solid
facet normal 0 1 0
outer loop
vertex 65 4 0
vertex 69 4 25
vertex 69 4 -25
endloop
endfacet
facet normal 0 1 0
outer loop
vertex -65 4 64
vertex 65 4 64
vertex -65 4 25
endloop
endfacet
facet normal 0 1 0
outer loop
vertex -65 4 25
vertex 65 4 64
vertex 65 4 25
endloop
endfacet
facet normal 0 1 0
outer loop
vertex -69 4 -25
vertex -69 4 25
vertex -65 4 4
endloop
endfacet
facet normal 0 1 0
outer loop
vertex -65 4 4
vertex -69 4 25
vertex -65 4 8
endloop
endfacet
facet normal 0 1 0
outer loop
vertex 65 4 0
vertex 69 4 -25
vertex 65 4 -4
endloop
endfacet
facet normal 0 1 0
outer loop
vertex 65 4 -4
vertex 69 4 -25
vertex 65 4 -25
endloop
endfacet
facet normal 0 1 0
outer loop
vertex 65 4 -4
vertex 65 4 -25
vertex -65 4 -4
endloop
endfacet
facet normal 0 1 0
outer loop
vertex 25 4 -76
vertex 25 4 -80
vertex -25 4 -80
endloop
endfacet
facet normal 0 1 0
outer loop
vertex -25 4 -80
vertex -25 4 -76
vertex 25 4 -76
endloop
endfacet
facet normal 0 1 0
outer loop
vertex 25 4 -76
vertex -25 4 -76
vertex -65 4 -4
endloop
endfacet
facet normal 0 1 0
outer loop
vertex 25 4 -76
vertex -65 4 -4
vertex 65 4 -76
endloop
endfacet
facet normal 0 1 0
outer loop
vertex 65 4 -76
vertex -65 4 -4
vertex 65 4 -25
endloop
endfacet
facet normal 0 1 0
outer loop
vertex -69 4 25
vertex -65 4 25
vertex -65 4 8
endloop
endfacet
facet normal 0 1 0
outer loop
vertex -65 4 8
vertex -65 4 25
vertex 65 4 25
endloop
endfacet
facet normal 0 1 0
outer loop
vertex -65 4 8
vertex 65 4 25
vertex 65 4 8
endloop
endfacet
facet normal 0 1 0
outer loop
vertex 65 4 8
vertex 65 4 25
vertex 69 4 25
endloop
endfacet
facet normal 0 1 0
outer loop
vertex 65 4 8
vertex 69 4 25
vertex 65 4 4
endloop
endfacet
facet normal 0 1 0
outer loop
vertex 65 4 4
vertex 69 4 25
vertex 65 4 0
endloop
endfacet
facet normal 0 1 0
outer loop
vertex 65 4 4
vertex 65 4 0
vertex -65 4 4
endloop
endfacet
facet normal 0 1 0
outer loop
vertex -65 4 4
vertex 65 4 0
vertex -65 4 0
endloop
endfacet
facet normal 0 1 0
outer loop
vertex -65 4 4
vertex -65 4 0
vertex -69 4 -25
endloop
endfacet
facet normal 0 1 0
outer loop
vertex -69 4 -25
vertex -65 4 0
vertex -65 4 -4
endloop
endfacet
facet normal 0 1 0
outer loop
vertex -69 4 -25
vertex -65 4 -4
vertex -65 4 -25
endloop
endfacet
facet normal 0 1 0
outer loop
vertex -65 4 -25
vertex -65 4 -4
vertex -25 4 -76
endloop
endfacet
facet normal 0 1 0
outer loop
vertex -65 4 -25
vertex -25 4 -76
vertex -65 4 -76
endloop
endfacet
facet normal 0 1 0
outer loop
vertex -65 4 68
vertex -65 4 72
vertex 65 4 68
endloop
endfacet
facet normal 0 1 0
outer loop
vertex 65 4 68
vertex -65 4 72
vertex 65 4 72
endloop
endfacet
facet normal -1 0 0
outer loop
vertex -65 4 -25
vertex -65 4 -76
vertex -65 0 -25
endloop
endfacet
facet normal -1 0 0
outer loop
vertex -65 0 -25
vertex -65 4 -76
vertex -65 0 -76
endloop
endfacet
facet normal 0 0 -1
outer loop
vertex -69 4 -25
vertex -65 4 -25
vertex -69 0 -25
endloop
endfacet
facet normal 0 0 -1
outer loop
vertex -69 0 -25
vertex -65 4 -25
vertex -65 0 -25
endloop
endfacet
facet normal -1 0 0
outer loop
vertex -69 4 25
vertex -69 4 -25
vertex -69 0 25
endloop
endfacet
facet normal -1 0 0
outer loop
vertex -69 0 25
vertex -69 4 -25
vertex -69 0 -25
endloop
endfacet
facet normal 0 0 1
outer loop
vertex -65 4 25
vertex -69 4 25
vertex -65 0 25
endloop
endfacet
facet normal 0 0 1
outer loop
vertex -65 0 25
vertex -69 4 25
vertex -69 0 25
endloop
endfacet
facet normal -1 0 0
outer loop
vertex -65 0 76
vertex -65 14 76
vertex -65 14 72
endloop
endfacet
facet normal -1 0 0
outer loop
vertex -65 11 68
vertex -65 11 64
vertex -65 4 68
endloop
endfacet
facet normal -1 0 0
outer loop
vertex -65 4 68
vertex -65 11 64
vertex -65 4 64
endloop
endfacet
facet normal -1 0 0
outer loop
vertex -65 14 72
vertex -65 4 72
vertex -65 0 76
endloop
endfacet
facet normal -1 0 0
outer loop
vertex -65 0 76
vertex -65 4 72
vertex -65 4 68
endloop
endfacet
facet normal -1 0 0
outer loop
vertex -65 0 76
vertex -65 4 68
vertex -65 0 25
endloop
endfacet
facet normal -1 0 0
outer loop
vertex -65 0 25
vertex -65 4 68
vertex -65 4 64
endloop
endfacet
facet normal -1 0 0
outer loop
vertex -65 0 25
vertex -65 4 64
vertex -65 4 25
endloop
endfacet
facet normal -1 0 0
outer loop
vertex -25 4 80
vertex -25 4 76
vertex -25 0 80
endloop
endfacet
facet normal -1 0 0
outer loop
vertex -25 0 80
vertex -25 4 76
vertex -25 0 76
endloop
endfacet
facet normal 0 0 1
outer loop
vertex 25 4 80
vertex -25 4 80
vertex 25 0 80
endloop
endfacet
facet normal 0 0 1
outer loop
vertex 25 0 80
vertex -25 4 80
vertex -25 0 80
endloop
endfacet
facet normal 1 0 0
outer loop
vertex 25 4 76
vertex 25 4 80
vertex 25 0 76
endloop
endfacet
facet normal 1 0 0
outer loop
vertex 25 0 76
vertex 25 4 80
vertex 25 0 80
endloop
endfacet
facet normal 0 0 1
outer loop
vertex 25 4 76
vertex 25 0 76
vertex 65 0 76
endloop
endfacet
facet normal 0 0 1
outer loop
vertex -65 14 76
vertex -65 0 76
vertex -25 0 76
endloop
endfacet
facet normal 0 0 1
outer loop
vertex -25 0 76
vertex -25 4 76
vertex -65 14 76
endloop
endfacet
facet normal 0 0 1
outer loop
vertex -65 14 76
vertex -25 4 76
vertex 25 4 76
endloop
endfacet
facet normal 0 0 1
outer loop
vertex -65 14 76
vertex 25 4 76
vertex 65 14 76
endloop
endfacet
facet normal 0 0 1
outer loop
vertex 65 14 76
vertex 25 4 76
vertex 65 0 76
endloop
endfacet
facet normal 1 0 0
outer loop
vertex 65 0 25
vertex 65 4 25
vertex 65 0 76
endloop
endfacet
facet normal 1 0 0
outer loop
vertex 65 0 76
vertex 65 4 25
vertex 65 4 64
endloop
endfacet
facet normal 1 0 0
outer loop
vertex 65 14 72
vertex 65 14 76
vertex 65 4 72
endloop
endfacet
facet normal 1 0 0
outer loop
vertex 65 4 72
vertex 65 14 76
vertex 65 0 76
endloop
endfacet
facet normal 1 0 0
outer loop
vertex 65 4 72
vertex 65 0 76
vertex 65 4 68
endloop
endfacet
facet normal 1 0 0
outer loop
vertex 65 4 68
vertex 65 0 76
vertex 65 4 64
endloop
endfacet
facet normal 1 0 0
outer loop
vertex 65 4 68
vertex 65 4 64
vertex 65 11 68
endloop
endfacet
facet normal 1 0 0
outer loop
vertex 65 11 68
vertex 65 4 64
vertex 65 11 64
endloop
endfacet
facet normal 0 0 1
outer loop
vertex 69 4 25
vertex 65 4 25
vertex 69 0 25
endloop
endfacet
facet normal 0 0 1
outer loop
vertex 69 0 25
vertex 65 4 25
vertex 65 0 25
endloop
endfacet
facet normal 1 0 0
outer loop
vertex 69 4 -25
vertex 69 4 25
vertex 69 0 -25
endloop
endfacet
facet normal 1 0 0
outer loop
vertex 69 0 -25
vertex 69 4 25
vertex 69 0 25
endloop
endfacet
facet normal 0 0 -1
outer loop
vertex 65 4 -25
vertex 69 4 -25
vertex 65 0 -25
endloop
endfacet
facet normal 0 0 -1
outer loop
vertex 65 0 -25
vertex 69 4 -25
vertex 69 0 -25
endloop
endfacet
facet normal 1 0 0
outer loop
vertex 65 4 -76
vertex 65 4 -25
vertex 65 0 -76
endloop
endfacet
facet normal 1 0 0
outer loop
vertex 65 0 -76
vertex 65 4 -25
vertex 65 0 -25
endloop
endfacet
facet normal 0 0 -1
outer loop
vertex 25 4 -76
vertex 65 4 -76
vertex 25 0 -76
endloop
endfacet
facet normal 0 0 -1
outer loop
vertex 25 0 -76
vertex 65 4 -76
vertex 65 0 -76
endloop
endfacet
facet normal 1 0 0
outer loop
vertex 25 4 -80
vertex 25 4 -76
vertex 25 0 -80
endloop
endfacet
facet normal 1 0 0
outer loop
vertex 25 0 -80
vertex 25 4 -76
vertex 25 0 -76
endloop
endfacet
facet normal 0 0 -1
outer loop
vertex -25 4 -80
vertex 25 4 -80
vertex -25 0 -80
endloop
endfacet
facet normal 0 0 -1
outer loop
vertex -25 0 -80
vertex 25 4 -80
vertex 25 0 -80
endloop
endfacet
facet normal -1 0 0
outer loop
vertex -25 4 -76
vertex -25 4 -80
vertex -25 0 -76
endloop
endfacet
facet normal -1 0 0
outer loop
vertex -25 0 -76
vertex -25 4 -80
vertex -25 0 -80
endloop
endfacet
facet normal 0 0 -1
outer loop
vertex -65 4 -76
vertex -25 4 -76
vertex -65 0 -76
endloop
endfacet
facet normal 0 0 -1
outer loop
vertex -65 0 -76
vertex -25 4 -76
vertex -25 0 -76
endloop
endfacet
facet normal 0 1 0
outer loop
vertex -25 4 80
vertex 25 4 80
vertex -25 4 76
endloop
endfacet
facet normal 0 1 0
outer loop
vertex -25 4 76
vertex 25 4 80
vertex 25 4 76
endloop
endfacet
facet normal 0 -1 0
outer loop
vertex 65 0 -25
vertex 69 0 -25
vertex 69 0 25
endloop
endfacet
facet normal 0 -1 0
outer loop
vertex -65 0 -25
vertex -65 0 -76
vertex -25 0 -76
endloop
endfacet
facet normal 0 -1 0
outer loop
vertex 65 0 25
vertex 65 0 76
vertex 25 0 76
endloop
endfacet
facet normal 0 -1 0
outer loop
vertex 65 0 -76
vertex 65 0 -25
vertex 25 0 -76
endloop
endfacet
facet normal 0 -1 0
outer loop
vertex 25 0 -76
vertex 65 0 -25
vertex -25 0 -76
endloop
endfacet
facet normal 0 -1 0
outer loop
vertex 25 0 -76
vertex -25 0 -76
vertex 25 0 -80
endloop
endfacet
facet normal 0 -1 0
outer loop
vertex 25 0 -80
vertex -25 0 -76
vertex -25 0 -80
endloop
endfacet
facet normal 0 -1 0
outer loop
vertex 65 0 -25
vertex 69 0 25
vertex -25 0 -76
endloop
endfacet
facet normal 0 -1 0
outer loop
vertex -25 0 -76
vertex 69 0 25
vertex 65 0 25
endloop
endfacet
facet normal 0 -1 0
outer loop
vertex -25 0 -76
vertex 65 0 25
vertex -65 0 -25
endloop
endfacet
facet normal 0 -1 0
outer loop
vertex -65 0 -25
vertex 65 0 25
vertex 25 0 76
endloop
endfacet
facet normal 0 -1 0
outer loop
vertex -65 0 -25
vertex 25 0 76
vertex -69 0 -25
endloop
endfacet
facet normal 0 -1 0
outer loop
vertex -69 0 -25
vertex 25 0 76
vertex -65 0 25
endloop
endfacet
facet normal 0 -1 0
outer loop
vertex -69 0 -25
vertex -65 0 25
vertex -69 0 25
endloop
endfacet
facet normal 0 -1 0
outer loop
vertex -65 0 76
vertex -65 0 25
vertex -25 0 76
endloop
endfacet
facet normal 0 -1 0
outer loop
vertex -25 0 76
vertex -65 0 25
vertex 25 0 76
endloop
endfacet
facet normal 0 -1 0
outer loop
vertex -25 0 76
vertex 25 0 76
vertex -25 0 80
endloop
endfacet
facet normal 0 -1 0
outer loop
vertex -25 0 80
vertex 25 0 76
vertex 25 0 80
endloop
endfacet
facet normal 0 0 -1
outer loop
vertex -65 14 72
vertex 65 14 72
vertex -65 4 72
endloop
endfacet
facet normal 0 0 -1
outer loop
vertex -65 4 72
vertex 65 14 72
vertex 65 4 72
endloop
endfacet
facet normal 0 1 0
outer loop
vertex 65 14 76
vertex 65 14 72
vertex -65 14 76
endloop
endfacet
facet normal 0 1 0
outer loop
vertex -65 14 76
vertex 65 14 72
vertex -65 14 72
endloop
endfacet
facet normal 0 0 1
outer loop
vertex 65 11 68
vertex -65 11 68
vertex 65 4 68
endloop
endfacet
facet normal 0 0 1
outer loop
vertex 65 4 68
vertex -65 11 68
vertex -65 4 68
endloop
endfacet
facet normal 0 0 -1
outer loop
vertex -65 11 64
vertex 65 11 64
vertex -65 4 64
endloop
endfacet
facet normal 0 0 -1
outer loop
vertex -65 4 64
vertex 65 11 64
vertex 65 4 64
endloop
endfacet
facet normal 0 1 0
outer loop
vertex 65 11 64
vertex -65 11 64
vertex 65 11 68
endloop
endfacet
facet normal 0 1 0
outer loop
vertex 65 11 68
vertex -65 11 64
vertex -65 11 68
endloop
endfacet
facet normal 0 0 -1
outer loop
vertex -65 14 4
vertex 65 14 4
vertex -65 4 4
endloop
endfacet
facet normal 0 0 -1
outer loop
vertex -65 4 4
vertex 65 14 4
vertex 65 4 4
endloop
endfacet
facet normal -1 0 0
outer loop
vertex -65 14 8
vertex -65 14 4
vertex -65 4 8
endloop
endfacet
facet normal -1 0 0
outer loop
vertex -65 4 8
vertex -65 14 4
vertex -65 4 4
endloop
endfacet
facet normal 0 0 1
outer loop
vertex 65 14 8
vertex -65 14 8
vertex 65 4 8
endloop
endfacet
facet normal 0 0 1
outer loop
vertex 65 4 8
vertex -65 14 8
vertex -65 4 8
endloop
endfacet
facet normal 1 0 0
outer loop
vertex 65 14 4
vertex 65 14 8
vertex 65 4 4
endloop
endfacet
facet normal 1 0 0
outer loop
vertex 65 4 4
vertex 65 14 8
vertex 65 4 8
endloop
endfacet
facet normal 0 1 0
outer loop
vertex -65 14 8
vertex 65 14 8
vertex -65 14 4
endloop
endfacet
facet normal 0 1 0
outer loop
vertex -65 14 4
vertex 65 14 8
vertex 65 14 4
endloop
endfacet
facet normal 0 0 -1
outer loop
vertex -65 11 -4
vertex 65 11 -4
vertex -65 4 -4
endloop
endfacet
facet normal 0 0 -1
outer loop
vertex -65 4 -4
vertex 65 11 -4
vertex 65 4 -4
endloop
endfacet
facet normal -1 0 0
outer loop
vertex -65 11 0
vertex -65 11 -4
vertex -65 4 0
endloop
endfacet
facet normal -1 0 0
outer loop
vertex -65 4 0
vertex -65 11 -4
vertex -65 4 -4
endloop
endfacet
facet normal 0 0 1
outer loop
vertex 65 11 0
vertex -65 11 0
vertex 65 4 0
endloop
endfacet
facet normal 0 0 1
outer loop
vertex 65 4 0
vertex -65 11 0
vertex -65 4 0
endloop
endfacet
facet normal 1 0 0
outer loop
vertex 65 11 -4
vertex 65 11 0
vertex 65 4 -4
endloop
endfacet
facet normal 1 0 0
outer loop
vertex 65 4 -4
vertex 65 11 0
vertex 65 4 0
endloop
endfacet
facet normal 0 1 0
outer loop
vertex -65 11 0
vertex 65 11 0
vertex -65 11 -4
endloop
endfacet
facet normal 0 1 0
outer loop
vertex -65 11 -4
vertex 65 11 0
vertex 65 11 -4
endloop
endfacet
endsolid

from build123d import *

# Parameters (mm, degrees)
BOSS_EXTRUDE1_DEPTH = 4
SKETCH4_W           = 130
SKETCH4_H           = 4
BOSS_EXTRUDE2_DEPTH = 10
SKETCH5_W           = 130
SKETCH5_H           = 4
BOSS_EXTRUDE3_DEPTH = 7
SKETCH6_W           = 130
SKETCH6_H           = 4
BOSS_EXTRUDE4_DEPTH = 10
SKETCH7_W           = 130
SKETCH7_H           = 4
BOSS_EXTRUDE5_DEPTH = 7


with BuildPart() as part:
    # Sketch3 → Boss-Extrude1 (new body)
    with BuildSketch(Plane(origin=(0, 0, 0), x_dir=(1, 0, 0), z_dir=(0, 1, 0))):
        Polygon((-25, 80), (25, 80), (25, 76), (65, 76), (65, 25), (69, 25), (69, -25), (65, -25), (65, -76), (25, -76), (25, -80), (-25, -80), (-25, -76), (-65, -76), (-65, -25), (-69, -25), (-69, 25), (-65, 25), (-65, 76), (-25, 76), align=None)
    extrude(amount=BOSS_EXTRUDE1_DEPTH)

    # Sketch4 → Boss-Extrude2 (add)
    with BuildSketch(Plane(origin=(0, 4, 0), x_dir=(1, 0, 0), z_dir=(0, 1, 0))):
        with Locations((0, -74)):
            Rectangle(SKETCH4_W, SKETCH4_H)
    extrude(amount=BOSS_EXTRUDE2_DEPTH)

    # Sketch5 → Boss-Extrude3 (add)
    with BuildSketch(Plane(origin=(0, 4, 0), x_dir=(1, 0, 0), z_dir=(0, 1, 0))):
        with Locations((0, -66)):
            Rectangle(SKETCH5_W, SKETCH5_H)
    extrude(amount=BOSS_EXTRUDE3_DEPTH)

    # Sketch6 → Boss-Extrude4 (add)
    with BuildSketch(Plane(origin=(0, 4, 0), x_dir=(1, 0, 0), z_dir=(0, 1, 0))):
        with Locations((0, -6)):
            Rectangle(SKETCH6_W, SKETCH6_H)
    extrude(amount=BOSS_EXTRUDE4_DEPTH)

    # Sketch7 → Boss-Extrude5 (add)
    with BuildSketch(Plane(origin=(0, 4, 0), x_dir=(1, 0, 0), z_dir=(0, 1, 0))):
        with Locations((0, 2)):
            Rectangle(SKETCH7_W, SKETCH7_H)
    extrude(amount=BOSS_EXTRUDE5_DEPTH)


solid = part.part
